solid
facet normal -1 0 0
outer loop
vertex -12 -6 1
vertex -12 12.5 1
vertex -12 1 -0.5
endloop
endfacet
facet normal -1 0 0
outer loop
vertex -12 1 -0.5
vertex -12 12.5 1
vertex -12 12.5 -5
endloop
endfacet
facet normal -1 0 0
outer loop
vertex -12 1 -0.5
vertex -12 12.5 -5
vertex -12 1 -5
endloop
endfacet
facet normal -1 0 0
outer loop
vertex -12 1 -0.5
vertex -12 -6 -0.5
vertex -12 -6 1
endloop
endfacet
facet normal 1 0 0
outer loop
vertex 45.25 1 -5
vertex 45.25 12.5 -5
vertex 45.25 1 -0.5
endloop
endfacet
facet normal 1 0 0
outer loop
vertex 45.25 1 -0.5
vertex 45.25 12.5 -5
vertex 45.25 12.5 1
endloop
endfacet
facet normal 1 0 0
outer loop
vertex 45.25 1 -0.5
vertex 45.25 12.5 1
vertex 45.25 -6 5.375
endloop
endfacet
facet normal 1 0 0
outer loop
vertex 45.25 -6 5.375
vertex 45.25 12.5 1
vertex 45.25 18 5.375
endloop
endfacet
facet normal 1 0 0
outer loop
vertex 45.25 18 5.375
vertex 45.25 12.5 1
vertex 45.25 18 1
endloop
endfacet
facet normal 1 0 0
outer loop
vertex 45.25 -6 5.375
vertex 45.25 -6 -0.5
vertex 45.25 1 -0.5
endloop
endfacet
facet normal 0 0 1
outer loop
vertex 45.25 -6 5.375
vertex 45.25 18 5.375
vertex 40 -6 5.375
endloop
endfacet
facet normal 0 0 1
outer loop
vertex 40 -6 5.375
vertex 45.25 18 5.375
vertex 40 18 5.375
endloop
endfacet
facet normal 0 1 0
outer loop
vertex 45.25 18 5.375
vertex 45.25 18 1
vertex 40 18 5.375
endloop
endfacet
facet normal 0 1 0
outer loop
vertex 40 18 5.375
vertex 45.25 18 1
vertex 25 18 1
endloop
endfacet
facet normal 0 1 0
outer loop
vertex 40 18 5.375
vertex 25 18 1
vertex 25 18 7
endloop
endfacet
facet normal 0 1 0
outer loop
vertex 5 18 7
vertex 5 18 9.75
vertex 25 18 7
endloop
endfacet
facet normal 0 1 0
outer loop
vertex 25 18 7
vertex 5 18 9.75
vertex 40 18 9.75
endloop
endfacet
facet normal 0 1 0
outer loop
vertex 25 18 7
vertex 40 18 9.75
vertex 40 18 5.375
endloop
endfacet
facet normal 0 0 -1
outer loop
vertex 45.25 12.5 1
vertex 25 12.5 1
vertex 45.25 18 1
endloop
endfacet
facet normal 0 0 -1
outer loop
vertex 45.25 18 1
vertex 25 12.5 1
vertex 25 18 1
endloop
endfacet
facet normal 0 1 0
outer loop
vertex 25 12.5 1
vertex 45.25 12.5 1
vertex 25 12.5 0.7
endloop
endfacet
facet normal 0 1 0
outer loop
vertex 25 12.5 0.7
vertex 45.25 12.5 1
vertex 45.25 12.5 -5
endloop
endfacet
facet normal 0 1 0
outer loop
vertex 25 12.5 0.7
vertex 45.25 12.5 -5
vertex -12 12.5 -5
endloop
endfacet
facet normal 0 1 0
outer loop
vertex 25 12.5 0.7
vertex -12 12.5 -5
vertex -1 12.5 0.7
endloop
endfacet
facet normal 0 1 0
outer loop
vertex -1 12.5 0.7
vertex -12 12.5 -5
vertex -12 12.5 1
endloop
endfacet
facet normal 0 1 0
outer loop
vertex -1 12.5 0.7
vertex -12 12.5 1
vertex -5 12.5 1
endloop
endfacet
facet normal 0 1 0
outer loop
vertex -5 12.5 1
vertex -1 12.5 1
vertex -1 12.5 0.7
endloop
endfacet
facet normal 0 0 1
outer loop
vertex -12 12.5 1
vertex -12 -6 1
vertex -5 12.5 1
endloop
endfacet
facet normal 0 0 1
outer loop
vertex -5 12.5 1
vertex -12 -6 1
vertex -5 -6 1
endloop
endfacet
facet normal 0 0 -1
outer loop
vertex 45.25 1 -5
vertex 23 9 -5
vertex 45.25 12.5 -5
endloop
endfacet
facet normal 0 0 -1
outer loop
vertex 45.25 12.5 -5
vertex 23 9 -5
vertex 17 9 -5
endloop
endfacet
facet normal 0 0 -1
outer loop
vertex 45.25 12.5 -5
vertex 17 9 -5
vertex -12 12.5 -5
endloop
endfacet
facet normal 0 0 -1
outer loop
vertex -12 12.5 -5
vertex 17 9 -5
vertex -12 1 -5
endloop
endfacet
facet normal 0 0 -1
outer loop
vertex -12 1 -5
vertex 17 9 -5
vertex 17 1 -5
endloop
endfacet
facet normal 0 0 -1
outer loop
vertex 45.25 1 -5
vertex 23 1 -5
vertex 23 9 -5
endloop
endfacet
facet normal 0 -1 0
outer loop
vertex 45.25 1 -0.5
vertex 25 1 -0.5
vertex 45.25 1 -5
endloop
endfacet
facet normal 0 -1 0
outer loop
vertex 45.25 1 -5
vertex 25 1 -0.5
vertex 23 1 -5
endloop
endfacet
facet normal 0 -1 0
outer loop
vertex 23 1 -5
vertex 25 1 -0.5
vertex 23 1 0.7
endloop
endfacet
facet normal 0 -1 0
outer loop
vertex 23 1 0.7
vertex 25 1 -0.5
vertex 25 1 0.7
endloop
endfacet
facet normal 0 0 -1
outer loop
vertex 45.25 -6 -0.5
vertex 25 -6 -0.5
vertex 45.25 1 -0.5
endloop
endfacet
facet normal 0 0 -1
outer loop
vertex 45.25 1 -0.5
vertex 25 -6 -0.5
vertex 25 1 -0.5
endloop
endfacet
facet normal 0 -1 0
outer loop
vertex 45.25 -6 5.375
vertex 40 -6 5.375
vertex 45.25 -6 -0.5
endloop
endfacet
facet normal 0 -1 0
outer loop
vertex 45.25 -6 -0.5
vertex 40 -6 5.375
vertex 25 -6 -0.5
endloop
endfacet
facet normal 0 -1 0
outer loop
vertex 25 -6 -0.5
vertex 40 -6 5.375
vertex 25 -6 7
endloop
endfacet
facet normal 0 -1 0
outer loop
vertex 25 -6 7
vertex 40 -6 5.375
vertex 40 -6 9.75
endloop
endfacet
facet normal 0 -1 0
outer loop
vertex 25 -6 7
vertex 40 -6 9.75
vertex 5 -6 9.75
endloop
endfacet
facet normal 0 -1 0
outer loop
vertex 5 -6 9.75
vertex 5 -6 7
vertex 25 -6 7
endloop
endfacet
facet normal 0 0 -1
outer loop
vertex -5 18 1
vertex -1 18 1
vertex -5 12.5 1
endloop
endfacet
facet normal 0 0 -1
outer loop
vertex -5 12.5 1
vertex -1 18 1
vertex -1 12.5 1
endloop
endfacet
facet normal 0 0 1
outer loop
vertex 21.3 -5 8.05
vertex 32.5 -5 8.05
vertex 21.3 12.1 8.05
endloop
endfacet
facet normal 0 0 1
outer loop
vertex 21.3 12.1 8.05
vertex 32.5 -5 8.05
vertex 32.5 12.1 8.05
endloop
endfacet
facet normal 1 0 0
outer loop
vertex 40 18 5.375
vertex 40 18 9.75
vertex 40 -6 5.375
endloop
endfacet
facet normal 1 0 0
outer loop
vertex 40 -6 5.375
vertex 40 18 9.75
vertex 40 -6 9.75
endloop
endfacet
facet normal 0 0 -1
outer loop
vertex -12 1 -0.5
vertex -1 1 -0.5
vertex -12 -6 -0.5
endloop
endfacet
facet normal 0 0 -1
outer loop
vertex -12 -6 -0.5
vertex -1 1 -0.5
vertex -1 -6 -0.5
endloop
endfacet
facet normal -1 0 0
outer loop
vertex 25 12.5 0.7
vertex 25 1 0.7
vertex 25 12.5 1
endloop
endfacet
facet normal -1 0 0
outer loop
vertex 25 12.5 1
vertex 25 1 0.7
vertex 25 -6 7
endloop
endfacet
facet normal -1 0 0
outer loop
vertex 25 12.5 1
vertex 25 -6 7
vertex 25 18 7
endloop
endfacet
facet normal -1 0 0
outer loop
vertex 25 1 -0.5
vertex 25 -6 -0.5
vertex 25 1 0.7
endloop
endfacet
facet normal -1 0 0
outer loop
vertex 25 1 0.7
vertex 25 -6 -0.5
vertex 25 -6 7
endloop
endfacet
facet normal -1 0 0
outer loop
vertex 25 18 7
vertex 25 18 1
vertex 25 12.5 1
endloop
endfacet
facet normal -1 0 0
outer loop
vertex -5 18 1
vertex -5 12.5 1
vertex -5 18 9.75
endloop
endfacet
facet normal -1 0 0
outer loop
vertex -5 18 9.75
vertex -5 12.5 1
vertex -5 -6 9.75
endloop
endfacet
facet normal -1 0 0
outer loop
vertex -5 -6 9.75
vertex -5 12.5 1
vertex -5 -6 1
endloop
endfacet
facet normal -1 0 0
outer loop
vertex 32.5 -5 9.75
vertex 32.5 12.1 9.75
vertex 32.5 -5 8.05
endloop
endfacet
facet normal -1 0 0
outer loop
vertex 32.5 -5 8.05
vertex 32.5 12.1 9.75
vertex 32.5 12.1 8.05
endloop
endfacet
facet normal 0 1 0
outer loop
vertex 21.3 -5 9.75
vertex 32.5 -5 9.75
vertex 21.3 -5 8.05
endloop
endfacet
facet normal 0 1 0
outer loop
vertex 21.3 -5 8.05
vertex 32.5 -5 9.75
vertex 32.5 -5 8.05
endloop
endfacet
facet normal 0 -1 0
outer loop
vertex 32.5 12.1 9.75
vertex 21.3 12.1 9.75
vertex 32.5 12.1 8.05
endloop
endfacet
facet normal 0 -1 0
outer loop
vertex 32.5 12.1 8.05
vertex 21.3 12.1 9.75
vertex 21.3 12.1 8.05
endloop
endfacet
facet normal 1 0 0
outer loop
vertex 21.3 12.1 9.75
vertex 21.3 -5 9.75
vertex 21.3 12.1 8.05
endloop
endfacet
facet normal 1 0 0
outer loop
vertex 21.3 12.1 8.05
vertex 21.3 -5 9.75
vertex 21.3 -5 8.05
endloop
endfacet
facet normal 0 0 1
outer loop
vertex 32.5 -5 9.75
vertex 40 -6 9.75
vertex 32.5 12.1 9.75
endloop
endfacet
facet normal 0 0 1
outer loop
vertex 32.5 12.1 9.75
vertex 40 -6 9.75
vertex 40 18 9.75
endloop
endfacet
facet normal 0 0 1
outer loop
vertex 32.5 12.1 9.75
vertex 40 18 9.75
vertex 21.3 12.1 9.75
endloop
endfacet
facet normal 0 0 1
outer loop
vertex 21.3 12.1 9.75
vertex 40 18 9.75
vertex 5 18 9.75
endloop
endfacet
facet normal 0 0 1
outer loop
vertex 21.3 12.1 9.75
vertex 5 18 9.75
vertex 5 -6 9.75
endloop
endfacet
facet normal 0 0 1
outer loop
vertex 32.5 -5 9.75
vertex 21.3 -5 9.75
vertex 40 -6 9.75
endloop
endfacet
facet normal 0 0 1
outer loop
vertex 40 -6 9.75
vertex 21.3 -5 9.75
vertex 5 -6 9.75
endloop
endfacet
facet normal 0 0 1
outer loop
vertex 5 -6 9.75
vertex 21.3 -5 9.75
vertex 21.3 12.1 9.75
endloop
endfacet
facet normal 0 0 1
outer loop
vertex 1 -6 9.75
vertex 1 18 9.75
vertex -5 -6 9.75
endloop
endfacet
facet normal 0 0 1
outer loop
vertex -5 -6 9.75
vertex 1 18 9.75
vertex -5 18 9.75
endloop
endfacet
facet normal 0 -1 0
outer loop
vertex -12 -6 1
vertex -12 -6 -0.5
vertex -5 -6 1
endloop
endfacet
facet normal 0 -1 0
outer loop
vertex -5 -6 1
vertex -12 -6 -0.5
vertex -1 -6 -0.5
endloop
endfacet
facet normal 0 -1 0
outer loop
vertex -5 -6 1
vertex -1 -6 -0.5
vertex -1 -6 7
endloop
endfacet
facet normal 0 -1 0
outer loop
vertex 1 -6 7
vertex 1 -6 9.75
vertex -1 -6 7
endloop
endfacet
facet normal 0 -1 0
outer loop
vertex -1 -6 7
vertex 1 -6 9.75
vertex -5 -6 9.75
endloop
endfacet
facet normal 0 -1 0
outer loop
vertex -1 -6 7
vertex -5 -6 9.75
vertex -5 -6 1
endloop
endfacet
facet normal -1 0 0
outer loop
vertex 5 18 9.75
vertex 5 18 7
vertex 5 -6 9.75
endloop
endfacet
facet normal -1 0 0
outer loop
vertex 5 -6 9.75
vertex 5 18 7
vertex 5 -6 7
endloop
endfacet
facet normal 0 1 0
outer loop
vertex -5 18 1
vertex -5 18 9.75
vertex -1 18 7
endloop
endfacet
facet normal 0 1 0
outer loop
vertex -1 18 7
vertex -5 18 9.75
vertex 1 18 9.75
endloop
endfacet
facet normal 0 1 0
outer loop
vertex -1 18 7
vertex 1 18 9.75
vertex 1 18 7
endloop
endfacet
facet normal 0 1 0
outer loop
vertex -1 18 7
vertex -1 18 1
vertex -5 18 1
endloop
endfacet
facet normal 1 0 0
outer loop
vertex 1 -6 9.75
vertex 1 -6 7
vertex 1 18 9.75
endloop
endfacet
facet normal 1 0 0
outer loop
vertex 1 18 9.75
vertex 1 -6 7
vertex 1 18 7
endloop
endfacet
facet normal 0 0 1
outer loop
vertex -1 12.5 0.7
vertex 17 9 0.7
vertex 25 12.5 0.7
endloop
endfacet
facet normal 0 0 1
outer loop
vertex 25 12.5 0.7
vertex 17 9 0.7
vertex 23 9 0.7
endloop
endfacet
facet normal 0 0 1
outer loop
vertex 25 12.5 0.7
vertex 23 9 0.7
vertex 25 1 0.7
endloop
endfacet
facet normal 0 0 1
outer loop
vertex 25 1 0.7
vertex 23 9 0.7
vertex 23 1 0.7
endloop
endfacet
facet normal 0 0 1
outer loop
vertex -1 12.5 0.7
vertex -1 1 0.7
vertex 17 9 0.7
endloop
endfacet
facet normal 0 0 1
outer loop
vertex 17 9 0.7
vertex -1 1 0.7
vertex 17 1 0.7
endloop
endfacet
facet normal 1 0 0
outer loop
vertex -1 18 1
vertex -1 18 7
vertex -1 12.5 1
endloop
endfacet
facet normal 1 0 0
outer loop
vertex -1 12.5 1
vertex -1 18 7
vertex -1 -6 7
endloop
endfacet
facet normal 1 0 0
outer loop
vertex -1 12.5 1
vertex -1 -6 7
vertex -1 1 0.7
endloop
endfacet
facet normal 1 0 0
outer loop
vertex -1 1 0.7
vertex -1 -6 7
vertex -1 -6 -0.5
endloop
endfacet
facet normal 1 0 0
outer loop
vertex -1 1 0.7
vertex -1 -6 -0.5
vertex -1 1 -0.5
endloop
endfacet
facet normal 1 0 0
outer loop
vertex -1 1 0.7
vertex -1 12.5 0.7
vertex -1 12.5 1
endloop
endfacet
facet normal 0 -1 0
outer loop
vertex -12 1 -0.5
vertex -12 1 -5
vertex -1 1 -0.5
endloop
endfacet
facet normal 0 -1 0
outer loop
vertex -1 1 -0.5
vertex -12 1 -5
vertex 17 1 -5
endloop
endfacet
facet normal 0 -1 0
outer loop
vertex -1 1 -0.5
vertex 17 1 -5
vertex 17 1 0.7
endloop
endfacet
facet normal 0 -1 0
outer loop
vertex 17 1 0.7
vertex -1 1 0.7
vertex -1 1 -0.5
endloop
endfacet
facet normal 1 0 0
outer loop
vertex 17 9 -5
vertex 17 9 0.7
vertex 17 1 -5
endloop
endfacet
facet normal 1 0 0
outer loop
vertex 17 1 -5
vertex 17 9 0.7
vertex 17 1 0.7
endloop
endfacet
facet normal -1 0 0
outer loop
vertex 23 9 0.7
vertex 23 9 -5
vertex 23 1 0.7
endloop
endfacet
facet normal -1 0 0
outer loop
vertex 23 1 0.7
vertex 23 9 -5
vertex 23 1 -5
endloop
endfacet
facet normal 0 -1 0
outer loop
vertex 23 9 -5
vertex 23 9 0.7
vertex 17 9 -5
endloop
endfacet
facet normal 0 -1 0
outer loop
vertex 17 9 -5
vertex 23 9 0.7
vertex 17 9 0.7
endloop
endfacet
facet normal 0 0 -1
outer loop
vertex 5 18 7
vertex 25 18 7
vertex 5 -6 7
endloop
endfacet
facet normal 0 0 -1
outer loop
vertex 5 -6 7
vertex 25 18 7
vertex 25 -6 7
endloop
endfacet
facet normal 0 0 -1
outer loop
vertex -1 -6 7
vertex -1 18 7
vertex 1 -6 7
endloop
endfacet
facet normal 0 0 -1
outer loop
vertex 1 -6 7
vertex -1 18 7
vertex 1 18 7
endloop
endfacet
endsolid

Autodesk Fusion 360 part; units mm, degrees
sketch "Sketch1" plane through (0, 0, 0) normal (0, 1, 0) x (1, 0, 0)
  line L0 (0, 0) -> (25, 0)
  line L1 (25, 0) -> (25, -7)
  line L2 (25, -7) -> (1, -7)
  line L3 (0, -5) -> (0, 0)
  line L4 (-5, 5) -> (30, 5)
  line L5 (30, 5) -> (30, -10)
  line L6 (30, -10) -> (-5, -10)
  line L7 (-5, -10) -> (-5, 5)
  line L8 (1, -7) -> (1, -10)
  line L9 (-1, -5) -> (-1, -10)
  line L10 (0, -5) -> (-1, -5)
  dimension "d1" = 25
  dimension "d2" = 5
  dimension "d4" = 6
  dimension "d5" = 2
extrude "Extrude1" add sketch "Sketch1" along normal blind 18 contours L0 L1 L2 L3 L4 L5 L6 L7 L8 L9 L10 makes body 1
move_face "OffsetFaces1" offset -1 1 faces at (0, 6, 3.3333) on bodies 1
move_face "OffsetFaces2" offset 2 2 faces at (20.3333, 6, 10) (-2.3333, 6, 10) on bodies 1
extrude "Extrude2" cut 1 faces at (1, 6, 8.6667) along direction (1, 0, 0) blind 4 on bodies 1 bodies 1
split "Split1" by plane through (-1, 0, 5) normal (1, 0, 0) bodies 1 makes body 2 at (19.6667, 12, -5)
sketch "Sketch3" plane through (-1, 0, 0) normal (1, 0, 0) x (0, 1, 0)
  line L0 (18, -5) -> (18, 12)
  line L1 (18, 12) -> (0, 12)
  line L2 (0, 12) -> (0, -5)
  line L3 (0, -5) -> (18, -5)
  line L4 (18, 12) -> (0, 12)
  line L5 (0, 12) -> (0, 7)
  line L6 (0, 7) -> (18, 7)
  line L7 (18, 7) -> (18, 12)
extrude "Extrude3" add sketch "Sketch3" along normal blind 2 contours L0 L1 L2 L4 L5 L6 L7 bodies 1
combine "Combine1" operation add target body 1 tool bodies 2
sketch "Sketch4" plane through (0, 0, 0) normal (0, -1, 0) x (1, 0, 0)
  line L0 (1, 12) -> (-5, 12)
  line L1 (-5, 12) -> (-5, -5)
  line L2 (-5, -5) -> (30, -5)
  line L3 (30, -5) -> (30, 12)
  line L4 (30, 12) -> (5, 12)
  line L5 (5, 12) -> (5, 7)
  line L6 (5, 7) -> (25, 7)
  line L7 (25, 7) -> (25, 0)
  line L8 (25, 0) -> (-1, 0)
  line L9 (-1, 0) -> (-1, 7)
  line L10 (-1, 7) -> (1, 7)
  line L11 (1, 7) -> (1, 12)
  line L12 (23, -5) -> (23, 0)
  line L13 (17, -5) -> (17, 0)
  dimension "d14" = 7
  dimension "d15" = 6
extrude "Extrude4" cut sketch "Sketch4" against normal blind 9 contours L2 L8 L12 L13 bodies 1
sketch "Sketch5" plane through (0, 18, 0) normal (0, 1, 0) x (-1, 0, 0)
  line L0 (-30, -5) -> (5, -5)
  line L1 (5, -5) -> (5, 12)
  line L2 (5, 12) -> (-1, 12)
  line L3 (-1, 12) -> (-1, 7)
  line L4 (-1, 7) -> (1, 7)
  line L5 (1, 7) -> (1, 0)
  line L6 (1, 0) -> (-25, 0)
  line L7 (-25, 0) -> (-25, 7)
  line L8 (-25, 7) -> (-5, 7)
  line L9 (-5, 7) -> (-5, 12)
  line L10 (-5, 12) -> (-30, 12)
  line L11 (-30, 12) -> (-30, -5)
  line L12 (-30, 1) -> (5, 1)
  dimension "d18" = 6
extrude "Extrude5" cut sketch "Sketch5" against normal blind 6 contours L0 L1 L5 L6 L7 L11 L12 bodies 1
sketch "Sketch6" plane through (0, 0, 0) normal (0, -1, 0) x (1, 0, 0)
  line L0 (17, -5) -> (17, 0)
  line L1 (17, 0) -> (-1, 0)
  line L2 (-1, 0) -> (-1, 7)
  line L3 (-1, 7) -> (1, 7)
  line L4 (1, 7) -> (1, 12)
  line L5 (1, 12) -> (-5, 12)
  line L6 (-5, 12) -> (-5, -5)
  line L7 (-5, -5) -> (17, -5)
  line L8 (30, -5) -> (-5, -5)
  line L9 (-5, -5) -> (-5, 1)
  line L10 (-5, 1) -> (-1, 1)
  line L11 (-1, 1) -> (-1, 0)
  line L12 (-1, 0) -> (25, 0)
  line L13 (25, 0) -> (25, 1)
  line L14 (25, 1) -> (30, 1)
  line L15 (30, 1) -> (30, -5)
extrude "Extrude6" cut sketch "Sketch6" against normal blind 6 contours L0 L1 L2 L6 L7 L8 L9 L10 L11 L12 | L0 L8 L12 L13 L14 L15 bodies 1
extrude "Extrude7" add 2 faces at (20, 0, 10.3333) (-3.6667, 0, 6.6667) along direction (0, -1, 0) blind 6 on bodies 1 bodies 1
extrude "Extrude8" add 2 faces at (26, 6, -3.3333) (3.6667, 6, -3.3333) along direction (0, -1, 0) blind 5 on bodies 1 bodies 1
extrude "Extrude9" add 1 faces at (5, 7.3333, 0) along direction (0, 0, 1) blind 0.2 on bodies 1 bodies 1
extrude "Extrude10" add 2 faces at (-3.6667, -3.6667, 1) (26.6667, -3.6667, 1) along direction (0, 0, -1) blind 3 on bodies 1 bodies 1
extrude "Extrude11" add 1 faces at (5, 7.3333, 0.2) along direction (0, 0, 1) blind 0.5 on bodies 1 bodies 1
extrude "Extrude12" cut 2 faces at (26.6667, -3.6667, -2) (-3.6667, -3.6667, -2) along direction (0, 0, 1) blind 1 on bodies 1 bodies 1
extrude "Extrude13" add 1 faces at (30, 8, 8.3333) along direction (1, 0, 0) blind 10 on bodies 1 bodies 1
sketch "Sketch7" plane through (0, 0, 12) normal (0, 0, 1) x (-1, 0, 0)
  line L0 (-5, -18) -> (-5, 6)
  line L1 (-5, 6) -> (-40, 6)
  line L2 (-40, 6) -> (-40, -18)
  line L3 (-40, -18) -> (-5, -18)
  line L4 (-32.5, 5) -> (-32.5, -12.1)
  line L5 (-32.5, -12.1) -> (-21.3, -12.1)
  line L6 (-21.3, -12.1) -> (-21.3, 5)
  line L7 (-21.3, 5) -> (-32.5, 5)
  dimension "d40" = 11.2
  dimension "d41" = 17.1
  dimension "d42" = 7.5
  dimension "d43" = 1
extrude "Extrude14" cut sketch "Sketch7" against normal blind 0.7 contours L4 L5 L6 L7 bodies 1
extrude "Extrude15" cut 2 faces at (10.4333, 8.0333, 12) (-1, 2, 12) along direction (0, 0, -1) blind 1 on bodies 1 bodies 1
extrude "Extrude16" cut 1 faces at (25.0333, 0.7, 11.3) along direction (0, 0, -1) blind 1 on bodies 1 bodies 1
extrude "Extrude17" cut 2 faces at (10.4333, 8.0333, 11) (-1, 2, 11) along direction (0, 0, -1) blind 1.25 on bodies 1 bodies 1
extrude "Extrude18" cut 1 faces at (25.0333, 0.7, 10.3) along direction (0, 0, -1) blind 1.25 on bodies 1 bodies 1
extrude "Extrude19" add 1 faces at (20, 12, -3.1) along direction (0, 1, 0) blind 0.5 on bodies 1 bodies 1
extrude "Extrude20" cut 2 faces at (35, -3.6667, -1) (-3.6667, -3.6667, -1) along direction (0, 0, 1) blind 0.5 on bodies 1 bodies 1
sketch "Sketch8" plane through (40, 0, 0) normal (1, 0, 0) x (0, 1, 0)
  line L0 (1, -0.5) -> (1, -5)
  line L1 (1, -5) -> (12.5, -5)
  line L2 (12.5, -5) -> (12.5, 1)
  line L3 (12.5, 1) -> (18, 1)
  line L4 (18, 1) -> (18, 9.75)
  line L5 (18, 9.75) -> (-6, 9.75)
  line L6 (-6, 9.75) -> (-6, -0.5)
  line L7 (-6, -0.5) -> (1, -0.5)
  line L8 (18, 5.375) -> (-6, 5.375)
extrude "Extrude21" add sketch "Sketch8" along normal blind 22 contours L0 L1 L2 L3 L4 L6 L7 L8 bodies 1
extrude "Extrude22" cut 1 faces at (25.0333, 0.7, 9.05) along direction (0, 0, -1) blind 1 on bodies 1 bodies 1
extrude "Extrude23" cut 1 faces at (62, 8.6667, -1.5) along direction (-1, 0, 0) blind 8 on bodies 1 bodies 1
sketch "Sketch9" plane through (-5, 0, 0) normal (-1, 0, 0) x (0, -1, 0)
  line L0 (-1, -5) -> (-1, -0.5)
  line L1 (-1, -0.5) -> (6, -0.5)
  line L2 (6, -0.5) -> (6, 9.75)
  line L3 (6, 9.75) -> (-18, 9.75)
  line L4 (-18, 9.75) -> (-18, 1)
  line L5 (-18, 1) -> (-12.5, 1)
  line L6 (-12.5, 1) -> (-12.5, -5)
  line L7 (-12.5, -5) -> (-1, -5)
  line L8 (-12.5, 1) -> (6, 1)
extrude "Extrude24" add sketch "Sketch9" along normal blind 5 contours L0 L1 L2 L6 L7 L8 bodies 1
extrude "Extrude25" add 1 faces at (23, 12.5, -3.1) along direction (0, 1, 0) blind 1 on bodies 1 bodies 1
extrude "Extrude26" cut 1 faces at (54, 9.3333, -1.5) along direction (-1, 0, 0) blind 2.5 on bodies 1 bodies 1
extrude "Extrude27" cut 1 faces at (51.5, 9.3333, -1.5) along direction (-1, 0, 0) blind 0.5 on bodies 1 bodies 1
extrude "Extrude28" cut 1 faces at (22, 13.5, -3.1) along direction (0, -1, 0) blind 1 on bodies 1 bodies 1
extrude "Extrude29" cut 1 faces at (51, 8.6667, -1.5) along direction (-1, 0, 0) blind 5.75 on bodies 1 bodies 1
extrude "Extrude30" add 1 faces at (-10, 8.6667, -1.5) along direction (-1, 0, 0) blind 2 on bodies 1 bodies 1
equation "d40 = 10.70 mm + 0.5 mm"
equation "d41 = 16.20 mm + 0.9 mm"
